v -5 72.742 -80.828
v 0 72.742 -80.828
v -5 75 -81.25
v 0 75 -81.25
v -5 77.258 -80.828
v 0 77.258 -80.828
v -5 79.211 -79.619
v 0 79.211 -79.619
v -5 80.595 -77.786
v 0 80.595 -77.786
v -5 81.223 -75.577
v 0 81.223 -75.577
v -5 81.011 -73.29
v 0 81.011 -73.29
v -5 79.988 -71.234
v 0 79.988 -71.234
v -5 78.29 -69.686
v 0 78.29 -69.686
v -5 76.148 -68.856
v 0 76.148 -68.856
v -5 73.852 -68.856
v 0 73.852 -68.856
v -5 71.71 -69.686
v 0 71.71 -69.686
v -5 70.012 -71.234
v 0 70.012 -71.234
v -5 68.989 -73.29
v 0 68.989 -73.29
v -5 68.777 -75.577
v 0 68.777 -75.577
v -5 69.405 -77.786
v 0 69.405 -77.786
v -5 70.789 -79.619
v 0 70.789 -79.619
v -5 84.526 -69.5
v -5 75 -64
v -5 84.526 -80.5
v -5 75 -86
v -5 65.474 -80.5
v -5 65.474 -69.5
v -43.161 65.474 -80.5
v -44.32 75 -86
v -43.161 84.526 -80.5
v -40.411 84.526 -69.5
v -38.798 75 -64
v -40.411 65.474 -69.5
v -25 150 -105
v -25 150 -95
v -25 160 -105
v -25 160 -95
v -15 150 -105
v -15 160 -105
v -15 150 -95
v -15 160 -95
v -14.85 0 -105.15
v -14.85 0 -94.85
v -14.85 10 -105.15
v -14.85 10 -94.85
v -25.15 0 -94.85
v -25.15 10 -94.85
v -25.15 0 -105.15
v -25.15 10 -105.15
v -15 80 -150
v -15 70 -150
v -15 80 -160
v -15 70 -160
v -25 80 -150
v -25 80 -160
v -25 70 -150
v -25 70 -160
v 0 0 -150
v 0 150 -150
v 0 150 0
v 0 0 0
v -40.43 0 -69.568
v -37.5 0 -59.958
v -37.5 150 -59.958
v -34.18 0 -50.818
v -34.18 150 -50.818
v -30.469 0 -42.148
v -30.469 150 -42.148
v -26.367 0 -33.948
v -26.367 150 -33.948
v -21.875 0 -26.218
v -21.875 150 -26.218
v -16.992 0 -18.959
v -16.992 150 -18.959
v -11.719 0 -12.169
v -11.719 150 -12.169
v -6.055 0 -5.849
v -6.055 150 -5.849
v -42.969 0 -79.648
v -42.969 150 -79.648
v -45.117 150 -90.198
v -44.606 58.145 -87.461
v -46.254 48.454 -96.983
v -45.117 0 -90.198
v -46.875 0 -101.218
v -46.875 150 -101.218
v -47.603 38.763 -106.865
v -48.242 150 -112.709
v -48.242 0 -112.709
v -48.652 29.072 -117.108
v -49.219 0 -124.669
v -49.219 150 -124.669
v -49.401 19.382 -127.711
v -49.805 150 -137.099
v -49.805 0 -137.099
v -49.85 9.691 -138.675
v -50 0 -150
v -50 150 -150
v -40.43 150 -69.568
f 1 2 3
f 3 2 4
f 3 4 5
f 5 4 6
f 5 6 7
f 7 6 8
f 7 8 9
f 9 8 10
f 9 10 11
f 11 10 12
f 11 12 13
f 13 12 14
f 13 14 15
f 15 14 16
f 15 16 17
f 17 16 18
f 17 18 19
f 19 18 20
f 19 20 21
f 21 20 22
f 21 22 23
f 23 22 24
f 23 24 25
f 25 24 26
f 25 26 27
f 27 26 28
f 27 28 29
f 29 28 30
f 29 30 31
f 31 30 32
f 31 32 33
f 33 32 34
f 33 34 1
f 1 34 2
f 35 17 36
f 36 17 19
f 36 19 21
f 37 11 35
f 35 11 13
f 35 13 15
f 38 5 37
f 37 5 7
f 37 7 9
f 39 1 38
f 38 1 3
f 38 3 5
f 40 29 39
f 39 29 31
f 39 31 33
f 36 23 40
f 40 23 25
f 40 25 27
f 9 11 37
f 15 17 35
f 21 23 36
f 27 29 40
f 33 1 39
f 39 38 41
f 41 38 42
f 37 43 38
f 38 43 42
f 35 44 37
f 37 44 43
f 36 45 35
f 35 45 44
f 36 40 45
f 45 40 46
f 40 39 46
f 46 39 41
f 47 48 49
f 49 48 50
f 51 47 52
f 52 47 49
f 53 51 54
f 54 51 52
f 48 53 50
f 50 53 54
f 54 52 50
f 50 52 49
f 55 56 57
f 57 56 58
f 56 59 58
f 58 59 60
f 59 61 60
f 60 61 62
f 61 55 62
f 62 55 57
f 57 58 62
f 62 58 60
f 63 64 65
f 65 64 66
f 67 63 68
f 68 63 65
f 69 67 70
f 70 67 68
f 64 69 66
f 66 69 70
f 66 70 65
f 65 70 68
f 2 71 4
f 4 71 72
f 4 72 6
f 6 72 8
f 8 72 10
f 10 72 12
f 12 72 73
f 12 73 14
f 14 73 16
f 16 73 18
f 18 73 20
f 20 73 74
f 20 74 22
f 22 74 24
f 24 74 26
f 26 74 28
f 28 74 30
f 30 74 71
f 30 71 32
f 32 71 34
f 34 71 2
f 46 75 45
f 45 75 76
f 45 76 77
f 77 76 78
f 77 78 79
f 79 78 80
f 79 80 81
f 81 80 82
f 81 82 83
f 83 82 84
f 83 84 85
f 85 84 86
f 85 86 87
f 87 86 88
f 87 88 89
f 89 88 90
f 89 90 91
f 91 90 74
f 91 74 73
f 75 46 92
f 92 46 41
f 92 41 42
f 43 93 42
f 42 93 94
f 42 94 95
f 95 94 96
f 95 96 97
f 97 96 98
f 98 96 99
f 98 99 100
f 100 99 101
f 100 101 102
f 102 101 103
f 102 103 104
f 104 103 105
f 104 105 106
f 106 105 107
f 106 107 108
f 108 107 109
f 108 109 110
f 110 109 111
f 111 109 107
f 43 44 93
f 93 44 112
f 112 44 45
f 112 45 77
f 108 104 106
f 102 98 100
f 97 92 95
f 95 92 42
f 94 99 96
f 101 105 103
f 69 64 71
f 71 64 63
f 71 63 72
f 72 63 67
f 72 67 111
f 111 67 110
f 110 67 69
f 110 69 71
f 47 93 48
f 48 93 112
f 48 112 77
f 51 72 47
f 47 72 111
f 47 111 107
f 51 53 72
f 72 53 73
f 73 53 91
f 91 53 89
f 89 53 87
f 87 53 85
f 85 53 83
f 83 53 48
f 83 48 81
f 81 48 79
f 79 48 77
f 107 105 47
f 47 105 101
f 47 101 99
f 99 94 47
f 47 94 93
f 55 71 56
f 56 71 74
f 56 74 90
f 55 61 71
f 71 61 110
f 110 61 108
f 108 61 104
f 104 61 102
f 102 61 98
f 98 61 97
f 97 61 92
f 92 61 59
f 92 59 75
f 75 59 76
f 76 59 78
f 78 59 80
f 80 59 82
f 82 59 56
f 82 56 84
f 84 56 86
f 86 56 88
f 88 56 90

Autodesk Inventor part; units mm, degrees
ref_plane "YZ Plane" through (0, 0, 0) normal (1, 0, 0) x (0, 1, 0)
ref_plane "XZ Plane" through (0, 0, 0) normal (0, 1, 0) x (-1, 0, 0)
ref_plane "XY Plane" through (0, 0, 0) normal (0, 0, 1) x (1, 0, 0)
sketch "Sketch1" plane through (0, 0, 0) normal (0, 1, 0) x (-1, 0, 0)
  line L0 (0, 0) -> (0, -150)
  line L1 (0, -150) -> (50, -150)
  line L2 (0, 0) -> (50, -44.9152) construction
  line L3 (50, -44.9152) -> (50, -150) construction
  spline S0 degree 2 poles (0, 0) (50, -44.9152) (50, -150) knots 1 1 1 2 2 2
  dimension "d0" = 150
  dimension "d2" = 50
extrude "Extrusion7" add sketch "Sketch1" along normal blind 150
sketch "Sketch5" plane through (0, 0, -150) normal (0, 0, -1) x (-1, 0, 0)
  line L0 (0, 0) -> (0, 150) projected
  line L1 (0, 0) -> (20, 0)
  line L2 (0, 0) -> (50, 0) projected
  line L3 (20, 0) -> (20, 75)
  line L4 (25, 80) -> (15, 80)
  line L5 (15, 80) -> (15, 70)
  line L6 (15, 70) -> (25, 70)
  line L7 (25, 70) -> (25, 80)
  line L8 (25, 80) -> (15, 70) construction
  line L9 (15, 80) -> (25, 70) construction
  dimension "d57" = 20
  dimension "d58" = 75
  dimension "d59" = 10
  dimension "d60" = 10
extrude "Extrusion8" add sketch "Sketch5" along normal blind 10
sketch "Sketch6" plane through (0, 0, 0) normal (0, -1, 0) x (1, 0, 0)
  line L0 (0, 0) -> (0, -150) projected
  line L1 (0, -150) -> (-20, -150)
  line L2 (0, -150) -> (-50, -150) projected
  line L3 (-20, -150) -> (-20, -100)
  line L4 (-25.15, -105.15) -> (-14.85, -105.15)
  line L5 (-14.85, -105.15) -> (-14.85, -94.85)
  line L6 (-14.85, -94.85) -> (-25.15, -94.85)
  line L7 (-25.15, -94.85) -> (-25.15, -105.15)
  line L8 (-25.15, -105.15) -> (-14.85, -94.85) construction
  line L9 (-14.85, -105.15) -> (-25.15, -94.85) construction
  dimension "d51" = 20
  dimension "d52" = 50
  dimension "d53" = 10.3
  dimension "d54" = 10.3
extrude "Extrusion9" cut sketch "Sketch6" against normal blind 10
sketch "Sketch7" plane through (0, 150, 0) normal (0, 1, 0) x (1, 0, 0)
  line L0 (0, 150) -> (-50, 150) projected
  line L1 (0, 150) -> (-20, 150)
  line L2 (-20, 150) -> (-20, 100)
  line L3 (-15, 95) -> (-25, 95)
  line L4 (-25, 95) -> (-25, 105)
  line L5 (-25, 105) -> (-15, 105)
  line L6 (-15, 105) -> (-15, 95)
  line L7 (-15, 95) -> (-25, 105) construction
  line L8 (-25, 95) -> (-15, 105) construction
  point P0 (0, 0)
  dimension "d61" = 20
  dimension "d62" = 50
  dimension "d63" = 10
  dimension "d64" = 10
extrude "Extrusion10" add sketch "Sketch7" along normal blind 10
sketch "Sketch8" plane through (0, 0, 0) normal (1, 0, 0) x (0, 0, -1)
  line L0 (0, 0) -> (0, 150) projected
  line L1 (0, 75) -> (75, 75) construction
  line L2 (0, 150) -> (150, 150) projected
  circle A0 centre (75, 75) radius 6.25
  line L3 (75, 75) -> (86, 75)
  line L4 (75, 75) -> (80.5, 84.5263)
  line L5 (75, 75) -> (69.5, 84.5263)
  line L6 (75, 75) -> (64, 75)
  line L7 (75, 75) -> (69.5, 65.4737)
  line L8 (75, 75) -> (80.5, 65.4737)
  line L9 (80.5, 65.4737) -> (86, 75)
  line L10 (80.5, 84.5263) -> (86, 75)
  line L11 (69.5, 84.5263) -> (80.5, 84.5263)
  line L12 (69.5, 84.5263) -> (64, 75)
  line L13 (64, 75) -> (69.5, 65.4737)
  line L14 (80.5, 65.4737) -> (69.5, 65.4737)
  dimension "d67" = 75
  dimension "d69" = 12.5
  dimension "d70" = 11
  dimension "d73" = 360
extrude "Extrusion11" cut sketch "Sketch8" against normal blind 100
extrude "Extrusion12" add sketch "Sketch8" against normal blind 5 contours L3 L9 L8 A0 | A0 L4 L10 L3 | A0 L5 L11 L4 | L8 L14 L7 A0 | A0 L6 L12 L5 | L7 L13 L6 A0
properties part number "3DPrintShapeCorner"
